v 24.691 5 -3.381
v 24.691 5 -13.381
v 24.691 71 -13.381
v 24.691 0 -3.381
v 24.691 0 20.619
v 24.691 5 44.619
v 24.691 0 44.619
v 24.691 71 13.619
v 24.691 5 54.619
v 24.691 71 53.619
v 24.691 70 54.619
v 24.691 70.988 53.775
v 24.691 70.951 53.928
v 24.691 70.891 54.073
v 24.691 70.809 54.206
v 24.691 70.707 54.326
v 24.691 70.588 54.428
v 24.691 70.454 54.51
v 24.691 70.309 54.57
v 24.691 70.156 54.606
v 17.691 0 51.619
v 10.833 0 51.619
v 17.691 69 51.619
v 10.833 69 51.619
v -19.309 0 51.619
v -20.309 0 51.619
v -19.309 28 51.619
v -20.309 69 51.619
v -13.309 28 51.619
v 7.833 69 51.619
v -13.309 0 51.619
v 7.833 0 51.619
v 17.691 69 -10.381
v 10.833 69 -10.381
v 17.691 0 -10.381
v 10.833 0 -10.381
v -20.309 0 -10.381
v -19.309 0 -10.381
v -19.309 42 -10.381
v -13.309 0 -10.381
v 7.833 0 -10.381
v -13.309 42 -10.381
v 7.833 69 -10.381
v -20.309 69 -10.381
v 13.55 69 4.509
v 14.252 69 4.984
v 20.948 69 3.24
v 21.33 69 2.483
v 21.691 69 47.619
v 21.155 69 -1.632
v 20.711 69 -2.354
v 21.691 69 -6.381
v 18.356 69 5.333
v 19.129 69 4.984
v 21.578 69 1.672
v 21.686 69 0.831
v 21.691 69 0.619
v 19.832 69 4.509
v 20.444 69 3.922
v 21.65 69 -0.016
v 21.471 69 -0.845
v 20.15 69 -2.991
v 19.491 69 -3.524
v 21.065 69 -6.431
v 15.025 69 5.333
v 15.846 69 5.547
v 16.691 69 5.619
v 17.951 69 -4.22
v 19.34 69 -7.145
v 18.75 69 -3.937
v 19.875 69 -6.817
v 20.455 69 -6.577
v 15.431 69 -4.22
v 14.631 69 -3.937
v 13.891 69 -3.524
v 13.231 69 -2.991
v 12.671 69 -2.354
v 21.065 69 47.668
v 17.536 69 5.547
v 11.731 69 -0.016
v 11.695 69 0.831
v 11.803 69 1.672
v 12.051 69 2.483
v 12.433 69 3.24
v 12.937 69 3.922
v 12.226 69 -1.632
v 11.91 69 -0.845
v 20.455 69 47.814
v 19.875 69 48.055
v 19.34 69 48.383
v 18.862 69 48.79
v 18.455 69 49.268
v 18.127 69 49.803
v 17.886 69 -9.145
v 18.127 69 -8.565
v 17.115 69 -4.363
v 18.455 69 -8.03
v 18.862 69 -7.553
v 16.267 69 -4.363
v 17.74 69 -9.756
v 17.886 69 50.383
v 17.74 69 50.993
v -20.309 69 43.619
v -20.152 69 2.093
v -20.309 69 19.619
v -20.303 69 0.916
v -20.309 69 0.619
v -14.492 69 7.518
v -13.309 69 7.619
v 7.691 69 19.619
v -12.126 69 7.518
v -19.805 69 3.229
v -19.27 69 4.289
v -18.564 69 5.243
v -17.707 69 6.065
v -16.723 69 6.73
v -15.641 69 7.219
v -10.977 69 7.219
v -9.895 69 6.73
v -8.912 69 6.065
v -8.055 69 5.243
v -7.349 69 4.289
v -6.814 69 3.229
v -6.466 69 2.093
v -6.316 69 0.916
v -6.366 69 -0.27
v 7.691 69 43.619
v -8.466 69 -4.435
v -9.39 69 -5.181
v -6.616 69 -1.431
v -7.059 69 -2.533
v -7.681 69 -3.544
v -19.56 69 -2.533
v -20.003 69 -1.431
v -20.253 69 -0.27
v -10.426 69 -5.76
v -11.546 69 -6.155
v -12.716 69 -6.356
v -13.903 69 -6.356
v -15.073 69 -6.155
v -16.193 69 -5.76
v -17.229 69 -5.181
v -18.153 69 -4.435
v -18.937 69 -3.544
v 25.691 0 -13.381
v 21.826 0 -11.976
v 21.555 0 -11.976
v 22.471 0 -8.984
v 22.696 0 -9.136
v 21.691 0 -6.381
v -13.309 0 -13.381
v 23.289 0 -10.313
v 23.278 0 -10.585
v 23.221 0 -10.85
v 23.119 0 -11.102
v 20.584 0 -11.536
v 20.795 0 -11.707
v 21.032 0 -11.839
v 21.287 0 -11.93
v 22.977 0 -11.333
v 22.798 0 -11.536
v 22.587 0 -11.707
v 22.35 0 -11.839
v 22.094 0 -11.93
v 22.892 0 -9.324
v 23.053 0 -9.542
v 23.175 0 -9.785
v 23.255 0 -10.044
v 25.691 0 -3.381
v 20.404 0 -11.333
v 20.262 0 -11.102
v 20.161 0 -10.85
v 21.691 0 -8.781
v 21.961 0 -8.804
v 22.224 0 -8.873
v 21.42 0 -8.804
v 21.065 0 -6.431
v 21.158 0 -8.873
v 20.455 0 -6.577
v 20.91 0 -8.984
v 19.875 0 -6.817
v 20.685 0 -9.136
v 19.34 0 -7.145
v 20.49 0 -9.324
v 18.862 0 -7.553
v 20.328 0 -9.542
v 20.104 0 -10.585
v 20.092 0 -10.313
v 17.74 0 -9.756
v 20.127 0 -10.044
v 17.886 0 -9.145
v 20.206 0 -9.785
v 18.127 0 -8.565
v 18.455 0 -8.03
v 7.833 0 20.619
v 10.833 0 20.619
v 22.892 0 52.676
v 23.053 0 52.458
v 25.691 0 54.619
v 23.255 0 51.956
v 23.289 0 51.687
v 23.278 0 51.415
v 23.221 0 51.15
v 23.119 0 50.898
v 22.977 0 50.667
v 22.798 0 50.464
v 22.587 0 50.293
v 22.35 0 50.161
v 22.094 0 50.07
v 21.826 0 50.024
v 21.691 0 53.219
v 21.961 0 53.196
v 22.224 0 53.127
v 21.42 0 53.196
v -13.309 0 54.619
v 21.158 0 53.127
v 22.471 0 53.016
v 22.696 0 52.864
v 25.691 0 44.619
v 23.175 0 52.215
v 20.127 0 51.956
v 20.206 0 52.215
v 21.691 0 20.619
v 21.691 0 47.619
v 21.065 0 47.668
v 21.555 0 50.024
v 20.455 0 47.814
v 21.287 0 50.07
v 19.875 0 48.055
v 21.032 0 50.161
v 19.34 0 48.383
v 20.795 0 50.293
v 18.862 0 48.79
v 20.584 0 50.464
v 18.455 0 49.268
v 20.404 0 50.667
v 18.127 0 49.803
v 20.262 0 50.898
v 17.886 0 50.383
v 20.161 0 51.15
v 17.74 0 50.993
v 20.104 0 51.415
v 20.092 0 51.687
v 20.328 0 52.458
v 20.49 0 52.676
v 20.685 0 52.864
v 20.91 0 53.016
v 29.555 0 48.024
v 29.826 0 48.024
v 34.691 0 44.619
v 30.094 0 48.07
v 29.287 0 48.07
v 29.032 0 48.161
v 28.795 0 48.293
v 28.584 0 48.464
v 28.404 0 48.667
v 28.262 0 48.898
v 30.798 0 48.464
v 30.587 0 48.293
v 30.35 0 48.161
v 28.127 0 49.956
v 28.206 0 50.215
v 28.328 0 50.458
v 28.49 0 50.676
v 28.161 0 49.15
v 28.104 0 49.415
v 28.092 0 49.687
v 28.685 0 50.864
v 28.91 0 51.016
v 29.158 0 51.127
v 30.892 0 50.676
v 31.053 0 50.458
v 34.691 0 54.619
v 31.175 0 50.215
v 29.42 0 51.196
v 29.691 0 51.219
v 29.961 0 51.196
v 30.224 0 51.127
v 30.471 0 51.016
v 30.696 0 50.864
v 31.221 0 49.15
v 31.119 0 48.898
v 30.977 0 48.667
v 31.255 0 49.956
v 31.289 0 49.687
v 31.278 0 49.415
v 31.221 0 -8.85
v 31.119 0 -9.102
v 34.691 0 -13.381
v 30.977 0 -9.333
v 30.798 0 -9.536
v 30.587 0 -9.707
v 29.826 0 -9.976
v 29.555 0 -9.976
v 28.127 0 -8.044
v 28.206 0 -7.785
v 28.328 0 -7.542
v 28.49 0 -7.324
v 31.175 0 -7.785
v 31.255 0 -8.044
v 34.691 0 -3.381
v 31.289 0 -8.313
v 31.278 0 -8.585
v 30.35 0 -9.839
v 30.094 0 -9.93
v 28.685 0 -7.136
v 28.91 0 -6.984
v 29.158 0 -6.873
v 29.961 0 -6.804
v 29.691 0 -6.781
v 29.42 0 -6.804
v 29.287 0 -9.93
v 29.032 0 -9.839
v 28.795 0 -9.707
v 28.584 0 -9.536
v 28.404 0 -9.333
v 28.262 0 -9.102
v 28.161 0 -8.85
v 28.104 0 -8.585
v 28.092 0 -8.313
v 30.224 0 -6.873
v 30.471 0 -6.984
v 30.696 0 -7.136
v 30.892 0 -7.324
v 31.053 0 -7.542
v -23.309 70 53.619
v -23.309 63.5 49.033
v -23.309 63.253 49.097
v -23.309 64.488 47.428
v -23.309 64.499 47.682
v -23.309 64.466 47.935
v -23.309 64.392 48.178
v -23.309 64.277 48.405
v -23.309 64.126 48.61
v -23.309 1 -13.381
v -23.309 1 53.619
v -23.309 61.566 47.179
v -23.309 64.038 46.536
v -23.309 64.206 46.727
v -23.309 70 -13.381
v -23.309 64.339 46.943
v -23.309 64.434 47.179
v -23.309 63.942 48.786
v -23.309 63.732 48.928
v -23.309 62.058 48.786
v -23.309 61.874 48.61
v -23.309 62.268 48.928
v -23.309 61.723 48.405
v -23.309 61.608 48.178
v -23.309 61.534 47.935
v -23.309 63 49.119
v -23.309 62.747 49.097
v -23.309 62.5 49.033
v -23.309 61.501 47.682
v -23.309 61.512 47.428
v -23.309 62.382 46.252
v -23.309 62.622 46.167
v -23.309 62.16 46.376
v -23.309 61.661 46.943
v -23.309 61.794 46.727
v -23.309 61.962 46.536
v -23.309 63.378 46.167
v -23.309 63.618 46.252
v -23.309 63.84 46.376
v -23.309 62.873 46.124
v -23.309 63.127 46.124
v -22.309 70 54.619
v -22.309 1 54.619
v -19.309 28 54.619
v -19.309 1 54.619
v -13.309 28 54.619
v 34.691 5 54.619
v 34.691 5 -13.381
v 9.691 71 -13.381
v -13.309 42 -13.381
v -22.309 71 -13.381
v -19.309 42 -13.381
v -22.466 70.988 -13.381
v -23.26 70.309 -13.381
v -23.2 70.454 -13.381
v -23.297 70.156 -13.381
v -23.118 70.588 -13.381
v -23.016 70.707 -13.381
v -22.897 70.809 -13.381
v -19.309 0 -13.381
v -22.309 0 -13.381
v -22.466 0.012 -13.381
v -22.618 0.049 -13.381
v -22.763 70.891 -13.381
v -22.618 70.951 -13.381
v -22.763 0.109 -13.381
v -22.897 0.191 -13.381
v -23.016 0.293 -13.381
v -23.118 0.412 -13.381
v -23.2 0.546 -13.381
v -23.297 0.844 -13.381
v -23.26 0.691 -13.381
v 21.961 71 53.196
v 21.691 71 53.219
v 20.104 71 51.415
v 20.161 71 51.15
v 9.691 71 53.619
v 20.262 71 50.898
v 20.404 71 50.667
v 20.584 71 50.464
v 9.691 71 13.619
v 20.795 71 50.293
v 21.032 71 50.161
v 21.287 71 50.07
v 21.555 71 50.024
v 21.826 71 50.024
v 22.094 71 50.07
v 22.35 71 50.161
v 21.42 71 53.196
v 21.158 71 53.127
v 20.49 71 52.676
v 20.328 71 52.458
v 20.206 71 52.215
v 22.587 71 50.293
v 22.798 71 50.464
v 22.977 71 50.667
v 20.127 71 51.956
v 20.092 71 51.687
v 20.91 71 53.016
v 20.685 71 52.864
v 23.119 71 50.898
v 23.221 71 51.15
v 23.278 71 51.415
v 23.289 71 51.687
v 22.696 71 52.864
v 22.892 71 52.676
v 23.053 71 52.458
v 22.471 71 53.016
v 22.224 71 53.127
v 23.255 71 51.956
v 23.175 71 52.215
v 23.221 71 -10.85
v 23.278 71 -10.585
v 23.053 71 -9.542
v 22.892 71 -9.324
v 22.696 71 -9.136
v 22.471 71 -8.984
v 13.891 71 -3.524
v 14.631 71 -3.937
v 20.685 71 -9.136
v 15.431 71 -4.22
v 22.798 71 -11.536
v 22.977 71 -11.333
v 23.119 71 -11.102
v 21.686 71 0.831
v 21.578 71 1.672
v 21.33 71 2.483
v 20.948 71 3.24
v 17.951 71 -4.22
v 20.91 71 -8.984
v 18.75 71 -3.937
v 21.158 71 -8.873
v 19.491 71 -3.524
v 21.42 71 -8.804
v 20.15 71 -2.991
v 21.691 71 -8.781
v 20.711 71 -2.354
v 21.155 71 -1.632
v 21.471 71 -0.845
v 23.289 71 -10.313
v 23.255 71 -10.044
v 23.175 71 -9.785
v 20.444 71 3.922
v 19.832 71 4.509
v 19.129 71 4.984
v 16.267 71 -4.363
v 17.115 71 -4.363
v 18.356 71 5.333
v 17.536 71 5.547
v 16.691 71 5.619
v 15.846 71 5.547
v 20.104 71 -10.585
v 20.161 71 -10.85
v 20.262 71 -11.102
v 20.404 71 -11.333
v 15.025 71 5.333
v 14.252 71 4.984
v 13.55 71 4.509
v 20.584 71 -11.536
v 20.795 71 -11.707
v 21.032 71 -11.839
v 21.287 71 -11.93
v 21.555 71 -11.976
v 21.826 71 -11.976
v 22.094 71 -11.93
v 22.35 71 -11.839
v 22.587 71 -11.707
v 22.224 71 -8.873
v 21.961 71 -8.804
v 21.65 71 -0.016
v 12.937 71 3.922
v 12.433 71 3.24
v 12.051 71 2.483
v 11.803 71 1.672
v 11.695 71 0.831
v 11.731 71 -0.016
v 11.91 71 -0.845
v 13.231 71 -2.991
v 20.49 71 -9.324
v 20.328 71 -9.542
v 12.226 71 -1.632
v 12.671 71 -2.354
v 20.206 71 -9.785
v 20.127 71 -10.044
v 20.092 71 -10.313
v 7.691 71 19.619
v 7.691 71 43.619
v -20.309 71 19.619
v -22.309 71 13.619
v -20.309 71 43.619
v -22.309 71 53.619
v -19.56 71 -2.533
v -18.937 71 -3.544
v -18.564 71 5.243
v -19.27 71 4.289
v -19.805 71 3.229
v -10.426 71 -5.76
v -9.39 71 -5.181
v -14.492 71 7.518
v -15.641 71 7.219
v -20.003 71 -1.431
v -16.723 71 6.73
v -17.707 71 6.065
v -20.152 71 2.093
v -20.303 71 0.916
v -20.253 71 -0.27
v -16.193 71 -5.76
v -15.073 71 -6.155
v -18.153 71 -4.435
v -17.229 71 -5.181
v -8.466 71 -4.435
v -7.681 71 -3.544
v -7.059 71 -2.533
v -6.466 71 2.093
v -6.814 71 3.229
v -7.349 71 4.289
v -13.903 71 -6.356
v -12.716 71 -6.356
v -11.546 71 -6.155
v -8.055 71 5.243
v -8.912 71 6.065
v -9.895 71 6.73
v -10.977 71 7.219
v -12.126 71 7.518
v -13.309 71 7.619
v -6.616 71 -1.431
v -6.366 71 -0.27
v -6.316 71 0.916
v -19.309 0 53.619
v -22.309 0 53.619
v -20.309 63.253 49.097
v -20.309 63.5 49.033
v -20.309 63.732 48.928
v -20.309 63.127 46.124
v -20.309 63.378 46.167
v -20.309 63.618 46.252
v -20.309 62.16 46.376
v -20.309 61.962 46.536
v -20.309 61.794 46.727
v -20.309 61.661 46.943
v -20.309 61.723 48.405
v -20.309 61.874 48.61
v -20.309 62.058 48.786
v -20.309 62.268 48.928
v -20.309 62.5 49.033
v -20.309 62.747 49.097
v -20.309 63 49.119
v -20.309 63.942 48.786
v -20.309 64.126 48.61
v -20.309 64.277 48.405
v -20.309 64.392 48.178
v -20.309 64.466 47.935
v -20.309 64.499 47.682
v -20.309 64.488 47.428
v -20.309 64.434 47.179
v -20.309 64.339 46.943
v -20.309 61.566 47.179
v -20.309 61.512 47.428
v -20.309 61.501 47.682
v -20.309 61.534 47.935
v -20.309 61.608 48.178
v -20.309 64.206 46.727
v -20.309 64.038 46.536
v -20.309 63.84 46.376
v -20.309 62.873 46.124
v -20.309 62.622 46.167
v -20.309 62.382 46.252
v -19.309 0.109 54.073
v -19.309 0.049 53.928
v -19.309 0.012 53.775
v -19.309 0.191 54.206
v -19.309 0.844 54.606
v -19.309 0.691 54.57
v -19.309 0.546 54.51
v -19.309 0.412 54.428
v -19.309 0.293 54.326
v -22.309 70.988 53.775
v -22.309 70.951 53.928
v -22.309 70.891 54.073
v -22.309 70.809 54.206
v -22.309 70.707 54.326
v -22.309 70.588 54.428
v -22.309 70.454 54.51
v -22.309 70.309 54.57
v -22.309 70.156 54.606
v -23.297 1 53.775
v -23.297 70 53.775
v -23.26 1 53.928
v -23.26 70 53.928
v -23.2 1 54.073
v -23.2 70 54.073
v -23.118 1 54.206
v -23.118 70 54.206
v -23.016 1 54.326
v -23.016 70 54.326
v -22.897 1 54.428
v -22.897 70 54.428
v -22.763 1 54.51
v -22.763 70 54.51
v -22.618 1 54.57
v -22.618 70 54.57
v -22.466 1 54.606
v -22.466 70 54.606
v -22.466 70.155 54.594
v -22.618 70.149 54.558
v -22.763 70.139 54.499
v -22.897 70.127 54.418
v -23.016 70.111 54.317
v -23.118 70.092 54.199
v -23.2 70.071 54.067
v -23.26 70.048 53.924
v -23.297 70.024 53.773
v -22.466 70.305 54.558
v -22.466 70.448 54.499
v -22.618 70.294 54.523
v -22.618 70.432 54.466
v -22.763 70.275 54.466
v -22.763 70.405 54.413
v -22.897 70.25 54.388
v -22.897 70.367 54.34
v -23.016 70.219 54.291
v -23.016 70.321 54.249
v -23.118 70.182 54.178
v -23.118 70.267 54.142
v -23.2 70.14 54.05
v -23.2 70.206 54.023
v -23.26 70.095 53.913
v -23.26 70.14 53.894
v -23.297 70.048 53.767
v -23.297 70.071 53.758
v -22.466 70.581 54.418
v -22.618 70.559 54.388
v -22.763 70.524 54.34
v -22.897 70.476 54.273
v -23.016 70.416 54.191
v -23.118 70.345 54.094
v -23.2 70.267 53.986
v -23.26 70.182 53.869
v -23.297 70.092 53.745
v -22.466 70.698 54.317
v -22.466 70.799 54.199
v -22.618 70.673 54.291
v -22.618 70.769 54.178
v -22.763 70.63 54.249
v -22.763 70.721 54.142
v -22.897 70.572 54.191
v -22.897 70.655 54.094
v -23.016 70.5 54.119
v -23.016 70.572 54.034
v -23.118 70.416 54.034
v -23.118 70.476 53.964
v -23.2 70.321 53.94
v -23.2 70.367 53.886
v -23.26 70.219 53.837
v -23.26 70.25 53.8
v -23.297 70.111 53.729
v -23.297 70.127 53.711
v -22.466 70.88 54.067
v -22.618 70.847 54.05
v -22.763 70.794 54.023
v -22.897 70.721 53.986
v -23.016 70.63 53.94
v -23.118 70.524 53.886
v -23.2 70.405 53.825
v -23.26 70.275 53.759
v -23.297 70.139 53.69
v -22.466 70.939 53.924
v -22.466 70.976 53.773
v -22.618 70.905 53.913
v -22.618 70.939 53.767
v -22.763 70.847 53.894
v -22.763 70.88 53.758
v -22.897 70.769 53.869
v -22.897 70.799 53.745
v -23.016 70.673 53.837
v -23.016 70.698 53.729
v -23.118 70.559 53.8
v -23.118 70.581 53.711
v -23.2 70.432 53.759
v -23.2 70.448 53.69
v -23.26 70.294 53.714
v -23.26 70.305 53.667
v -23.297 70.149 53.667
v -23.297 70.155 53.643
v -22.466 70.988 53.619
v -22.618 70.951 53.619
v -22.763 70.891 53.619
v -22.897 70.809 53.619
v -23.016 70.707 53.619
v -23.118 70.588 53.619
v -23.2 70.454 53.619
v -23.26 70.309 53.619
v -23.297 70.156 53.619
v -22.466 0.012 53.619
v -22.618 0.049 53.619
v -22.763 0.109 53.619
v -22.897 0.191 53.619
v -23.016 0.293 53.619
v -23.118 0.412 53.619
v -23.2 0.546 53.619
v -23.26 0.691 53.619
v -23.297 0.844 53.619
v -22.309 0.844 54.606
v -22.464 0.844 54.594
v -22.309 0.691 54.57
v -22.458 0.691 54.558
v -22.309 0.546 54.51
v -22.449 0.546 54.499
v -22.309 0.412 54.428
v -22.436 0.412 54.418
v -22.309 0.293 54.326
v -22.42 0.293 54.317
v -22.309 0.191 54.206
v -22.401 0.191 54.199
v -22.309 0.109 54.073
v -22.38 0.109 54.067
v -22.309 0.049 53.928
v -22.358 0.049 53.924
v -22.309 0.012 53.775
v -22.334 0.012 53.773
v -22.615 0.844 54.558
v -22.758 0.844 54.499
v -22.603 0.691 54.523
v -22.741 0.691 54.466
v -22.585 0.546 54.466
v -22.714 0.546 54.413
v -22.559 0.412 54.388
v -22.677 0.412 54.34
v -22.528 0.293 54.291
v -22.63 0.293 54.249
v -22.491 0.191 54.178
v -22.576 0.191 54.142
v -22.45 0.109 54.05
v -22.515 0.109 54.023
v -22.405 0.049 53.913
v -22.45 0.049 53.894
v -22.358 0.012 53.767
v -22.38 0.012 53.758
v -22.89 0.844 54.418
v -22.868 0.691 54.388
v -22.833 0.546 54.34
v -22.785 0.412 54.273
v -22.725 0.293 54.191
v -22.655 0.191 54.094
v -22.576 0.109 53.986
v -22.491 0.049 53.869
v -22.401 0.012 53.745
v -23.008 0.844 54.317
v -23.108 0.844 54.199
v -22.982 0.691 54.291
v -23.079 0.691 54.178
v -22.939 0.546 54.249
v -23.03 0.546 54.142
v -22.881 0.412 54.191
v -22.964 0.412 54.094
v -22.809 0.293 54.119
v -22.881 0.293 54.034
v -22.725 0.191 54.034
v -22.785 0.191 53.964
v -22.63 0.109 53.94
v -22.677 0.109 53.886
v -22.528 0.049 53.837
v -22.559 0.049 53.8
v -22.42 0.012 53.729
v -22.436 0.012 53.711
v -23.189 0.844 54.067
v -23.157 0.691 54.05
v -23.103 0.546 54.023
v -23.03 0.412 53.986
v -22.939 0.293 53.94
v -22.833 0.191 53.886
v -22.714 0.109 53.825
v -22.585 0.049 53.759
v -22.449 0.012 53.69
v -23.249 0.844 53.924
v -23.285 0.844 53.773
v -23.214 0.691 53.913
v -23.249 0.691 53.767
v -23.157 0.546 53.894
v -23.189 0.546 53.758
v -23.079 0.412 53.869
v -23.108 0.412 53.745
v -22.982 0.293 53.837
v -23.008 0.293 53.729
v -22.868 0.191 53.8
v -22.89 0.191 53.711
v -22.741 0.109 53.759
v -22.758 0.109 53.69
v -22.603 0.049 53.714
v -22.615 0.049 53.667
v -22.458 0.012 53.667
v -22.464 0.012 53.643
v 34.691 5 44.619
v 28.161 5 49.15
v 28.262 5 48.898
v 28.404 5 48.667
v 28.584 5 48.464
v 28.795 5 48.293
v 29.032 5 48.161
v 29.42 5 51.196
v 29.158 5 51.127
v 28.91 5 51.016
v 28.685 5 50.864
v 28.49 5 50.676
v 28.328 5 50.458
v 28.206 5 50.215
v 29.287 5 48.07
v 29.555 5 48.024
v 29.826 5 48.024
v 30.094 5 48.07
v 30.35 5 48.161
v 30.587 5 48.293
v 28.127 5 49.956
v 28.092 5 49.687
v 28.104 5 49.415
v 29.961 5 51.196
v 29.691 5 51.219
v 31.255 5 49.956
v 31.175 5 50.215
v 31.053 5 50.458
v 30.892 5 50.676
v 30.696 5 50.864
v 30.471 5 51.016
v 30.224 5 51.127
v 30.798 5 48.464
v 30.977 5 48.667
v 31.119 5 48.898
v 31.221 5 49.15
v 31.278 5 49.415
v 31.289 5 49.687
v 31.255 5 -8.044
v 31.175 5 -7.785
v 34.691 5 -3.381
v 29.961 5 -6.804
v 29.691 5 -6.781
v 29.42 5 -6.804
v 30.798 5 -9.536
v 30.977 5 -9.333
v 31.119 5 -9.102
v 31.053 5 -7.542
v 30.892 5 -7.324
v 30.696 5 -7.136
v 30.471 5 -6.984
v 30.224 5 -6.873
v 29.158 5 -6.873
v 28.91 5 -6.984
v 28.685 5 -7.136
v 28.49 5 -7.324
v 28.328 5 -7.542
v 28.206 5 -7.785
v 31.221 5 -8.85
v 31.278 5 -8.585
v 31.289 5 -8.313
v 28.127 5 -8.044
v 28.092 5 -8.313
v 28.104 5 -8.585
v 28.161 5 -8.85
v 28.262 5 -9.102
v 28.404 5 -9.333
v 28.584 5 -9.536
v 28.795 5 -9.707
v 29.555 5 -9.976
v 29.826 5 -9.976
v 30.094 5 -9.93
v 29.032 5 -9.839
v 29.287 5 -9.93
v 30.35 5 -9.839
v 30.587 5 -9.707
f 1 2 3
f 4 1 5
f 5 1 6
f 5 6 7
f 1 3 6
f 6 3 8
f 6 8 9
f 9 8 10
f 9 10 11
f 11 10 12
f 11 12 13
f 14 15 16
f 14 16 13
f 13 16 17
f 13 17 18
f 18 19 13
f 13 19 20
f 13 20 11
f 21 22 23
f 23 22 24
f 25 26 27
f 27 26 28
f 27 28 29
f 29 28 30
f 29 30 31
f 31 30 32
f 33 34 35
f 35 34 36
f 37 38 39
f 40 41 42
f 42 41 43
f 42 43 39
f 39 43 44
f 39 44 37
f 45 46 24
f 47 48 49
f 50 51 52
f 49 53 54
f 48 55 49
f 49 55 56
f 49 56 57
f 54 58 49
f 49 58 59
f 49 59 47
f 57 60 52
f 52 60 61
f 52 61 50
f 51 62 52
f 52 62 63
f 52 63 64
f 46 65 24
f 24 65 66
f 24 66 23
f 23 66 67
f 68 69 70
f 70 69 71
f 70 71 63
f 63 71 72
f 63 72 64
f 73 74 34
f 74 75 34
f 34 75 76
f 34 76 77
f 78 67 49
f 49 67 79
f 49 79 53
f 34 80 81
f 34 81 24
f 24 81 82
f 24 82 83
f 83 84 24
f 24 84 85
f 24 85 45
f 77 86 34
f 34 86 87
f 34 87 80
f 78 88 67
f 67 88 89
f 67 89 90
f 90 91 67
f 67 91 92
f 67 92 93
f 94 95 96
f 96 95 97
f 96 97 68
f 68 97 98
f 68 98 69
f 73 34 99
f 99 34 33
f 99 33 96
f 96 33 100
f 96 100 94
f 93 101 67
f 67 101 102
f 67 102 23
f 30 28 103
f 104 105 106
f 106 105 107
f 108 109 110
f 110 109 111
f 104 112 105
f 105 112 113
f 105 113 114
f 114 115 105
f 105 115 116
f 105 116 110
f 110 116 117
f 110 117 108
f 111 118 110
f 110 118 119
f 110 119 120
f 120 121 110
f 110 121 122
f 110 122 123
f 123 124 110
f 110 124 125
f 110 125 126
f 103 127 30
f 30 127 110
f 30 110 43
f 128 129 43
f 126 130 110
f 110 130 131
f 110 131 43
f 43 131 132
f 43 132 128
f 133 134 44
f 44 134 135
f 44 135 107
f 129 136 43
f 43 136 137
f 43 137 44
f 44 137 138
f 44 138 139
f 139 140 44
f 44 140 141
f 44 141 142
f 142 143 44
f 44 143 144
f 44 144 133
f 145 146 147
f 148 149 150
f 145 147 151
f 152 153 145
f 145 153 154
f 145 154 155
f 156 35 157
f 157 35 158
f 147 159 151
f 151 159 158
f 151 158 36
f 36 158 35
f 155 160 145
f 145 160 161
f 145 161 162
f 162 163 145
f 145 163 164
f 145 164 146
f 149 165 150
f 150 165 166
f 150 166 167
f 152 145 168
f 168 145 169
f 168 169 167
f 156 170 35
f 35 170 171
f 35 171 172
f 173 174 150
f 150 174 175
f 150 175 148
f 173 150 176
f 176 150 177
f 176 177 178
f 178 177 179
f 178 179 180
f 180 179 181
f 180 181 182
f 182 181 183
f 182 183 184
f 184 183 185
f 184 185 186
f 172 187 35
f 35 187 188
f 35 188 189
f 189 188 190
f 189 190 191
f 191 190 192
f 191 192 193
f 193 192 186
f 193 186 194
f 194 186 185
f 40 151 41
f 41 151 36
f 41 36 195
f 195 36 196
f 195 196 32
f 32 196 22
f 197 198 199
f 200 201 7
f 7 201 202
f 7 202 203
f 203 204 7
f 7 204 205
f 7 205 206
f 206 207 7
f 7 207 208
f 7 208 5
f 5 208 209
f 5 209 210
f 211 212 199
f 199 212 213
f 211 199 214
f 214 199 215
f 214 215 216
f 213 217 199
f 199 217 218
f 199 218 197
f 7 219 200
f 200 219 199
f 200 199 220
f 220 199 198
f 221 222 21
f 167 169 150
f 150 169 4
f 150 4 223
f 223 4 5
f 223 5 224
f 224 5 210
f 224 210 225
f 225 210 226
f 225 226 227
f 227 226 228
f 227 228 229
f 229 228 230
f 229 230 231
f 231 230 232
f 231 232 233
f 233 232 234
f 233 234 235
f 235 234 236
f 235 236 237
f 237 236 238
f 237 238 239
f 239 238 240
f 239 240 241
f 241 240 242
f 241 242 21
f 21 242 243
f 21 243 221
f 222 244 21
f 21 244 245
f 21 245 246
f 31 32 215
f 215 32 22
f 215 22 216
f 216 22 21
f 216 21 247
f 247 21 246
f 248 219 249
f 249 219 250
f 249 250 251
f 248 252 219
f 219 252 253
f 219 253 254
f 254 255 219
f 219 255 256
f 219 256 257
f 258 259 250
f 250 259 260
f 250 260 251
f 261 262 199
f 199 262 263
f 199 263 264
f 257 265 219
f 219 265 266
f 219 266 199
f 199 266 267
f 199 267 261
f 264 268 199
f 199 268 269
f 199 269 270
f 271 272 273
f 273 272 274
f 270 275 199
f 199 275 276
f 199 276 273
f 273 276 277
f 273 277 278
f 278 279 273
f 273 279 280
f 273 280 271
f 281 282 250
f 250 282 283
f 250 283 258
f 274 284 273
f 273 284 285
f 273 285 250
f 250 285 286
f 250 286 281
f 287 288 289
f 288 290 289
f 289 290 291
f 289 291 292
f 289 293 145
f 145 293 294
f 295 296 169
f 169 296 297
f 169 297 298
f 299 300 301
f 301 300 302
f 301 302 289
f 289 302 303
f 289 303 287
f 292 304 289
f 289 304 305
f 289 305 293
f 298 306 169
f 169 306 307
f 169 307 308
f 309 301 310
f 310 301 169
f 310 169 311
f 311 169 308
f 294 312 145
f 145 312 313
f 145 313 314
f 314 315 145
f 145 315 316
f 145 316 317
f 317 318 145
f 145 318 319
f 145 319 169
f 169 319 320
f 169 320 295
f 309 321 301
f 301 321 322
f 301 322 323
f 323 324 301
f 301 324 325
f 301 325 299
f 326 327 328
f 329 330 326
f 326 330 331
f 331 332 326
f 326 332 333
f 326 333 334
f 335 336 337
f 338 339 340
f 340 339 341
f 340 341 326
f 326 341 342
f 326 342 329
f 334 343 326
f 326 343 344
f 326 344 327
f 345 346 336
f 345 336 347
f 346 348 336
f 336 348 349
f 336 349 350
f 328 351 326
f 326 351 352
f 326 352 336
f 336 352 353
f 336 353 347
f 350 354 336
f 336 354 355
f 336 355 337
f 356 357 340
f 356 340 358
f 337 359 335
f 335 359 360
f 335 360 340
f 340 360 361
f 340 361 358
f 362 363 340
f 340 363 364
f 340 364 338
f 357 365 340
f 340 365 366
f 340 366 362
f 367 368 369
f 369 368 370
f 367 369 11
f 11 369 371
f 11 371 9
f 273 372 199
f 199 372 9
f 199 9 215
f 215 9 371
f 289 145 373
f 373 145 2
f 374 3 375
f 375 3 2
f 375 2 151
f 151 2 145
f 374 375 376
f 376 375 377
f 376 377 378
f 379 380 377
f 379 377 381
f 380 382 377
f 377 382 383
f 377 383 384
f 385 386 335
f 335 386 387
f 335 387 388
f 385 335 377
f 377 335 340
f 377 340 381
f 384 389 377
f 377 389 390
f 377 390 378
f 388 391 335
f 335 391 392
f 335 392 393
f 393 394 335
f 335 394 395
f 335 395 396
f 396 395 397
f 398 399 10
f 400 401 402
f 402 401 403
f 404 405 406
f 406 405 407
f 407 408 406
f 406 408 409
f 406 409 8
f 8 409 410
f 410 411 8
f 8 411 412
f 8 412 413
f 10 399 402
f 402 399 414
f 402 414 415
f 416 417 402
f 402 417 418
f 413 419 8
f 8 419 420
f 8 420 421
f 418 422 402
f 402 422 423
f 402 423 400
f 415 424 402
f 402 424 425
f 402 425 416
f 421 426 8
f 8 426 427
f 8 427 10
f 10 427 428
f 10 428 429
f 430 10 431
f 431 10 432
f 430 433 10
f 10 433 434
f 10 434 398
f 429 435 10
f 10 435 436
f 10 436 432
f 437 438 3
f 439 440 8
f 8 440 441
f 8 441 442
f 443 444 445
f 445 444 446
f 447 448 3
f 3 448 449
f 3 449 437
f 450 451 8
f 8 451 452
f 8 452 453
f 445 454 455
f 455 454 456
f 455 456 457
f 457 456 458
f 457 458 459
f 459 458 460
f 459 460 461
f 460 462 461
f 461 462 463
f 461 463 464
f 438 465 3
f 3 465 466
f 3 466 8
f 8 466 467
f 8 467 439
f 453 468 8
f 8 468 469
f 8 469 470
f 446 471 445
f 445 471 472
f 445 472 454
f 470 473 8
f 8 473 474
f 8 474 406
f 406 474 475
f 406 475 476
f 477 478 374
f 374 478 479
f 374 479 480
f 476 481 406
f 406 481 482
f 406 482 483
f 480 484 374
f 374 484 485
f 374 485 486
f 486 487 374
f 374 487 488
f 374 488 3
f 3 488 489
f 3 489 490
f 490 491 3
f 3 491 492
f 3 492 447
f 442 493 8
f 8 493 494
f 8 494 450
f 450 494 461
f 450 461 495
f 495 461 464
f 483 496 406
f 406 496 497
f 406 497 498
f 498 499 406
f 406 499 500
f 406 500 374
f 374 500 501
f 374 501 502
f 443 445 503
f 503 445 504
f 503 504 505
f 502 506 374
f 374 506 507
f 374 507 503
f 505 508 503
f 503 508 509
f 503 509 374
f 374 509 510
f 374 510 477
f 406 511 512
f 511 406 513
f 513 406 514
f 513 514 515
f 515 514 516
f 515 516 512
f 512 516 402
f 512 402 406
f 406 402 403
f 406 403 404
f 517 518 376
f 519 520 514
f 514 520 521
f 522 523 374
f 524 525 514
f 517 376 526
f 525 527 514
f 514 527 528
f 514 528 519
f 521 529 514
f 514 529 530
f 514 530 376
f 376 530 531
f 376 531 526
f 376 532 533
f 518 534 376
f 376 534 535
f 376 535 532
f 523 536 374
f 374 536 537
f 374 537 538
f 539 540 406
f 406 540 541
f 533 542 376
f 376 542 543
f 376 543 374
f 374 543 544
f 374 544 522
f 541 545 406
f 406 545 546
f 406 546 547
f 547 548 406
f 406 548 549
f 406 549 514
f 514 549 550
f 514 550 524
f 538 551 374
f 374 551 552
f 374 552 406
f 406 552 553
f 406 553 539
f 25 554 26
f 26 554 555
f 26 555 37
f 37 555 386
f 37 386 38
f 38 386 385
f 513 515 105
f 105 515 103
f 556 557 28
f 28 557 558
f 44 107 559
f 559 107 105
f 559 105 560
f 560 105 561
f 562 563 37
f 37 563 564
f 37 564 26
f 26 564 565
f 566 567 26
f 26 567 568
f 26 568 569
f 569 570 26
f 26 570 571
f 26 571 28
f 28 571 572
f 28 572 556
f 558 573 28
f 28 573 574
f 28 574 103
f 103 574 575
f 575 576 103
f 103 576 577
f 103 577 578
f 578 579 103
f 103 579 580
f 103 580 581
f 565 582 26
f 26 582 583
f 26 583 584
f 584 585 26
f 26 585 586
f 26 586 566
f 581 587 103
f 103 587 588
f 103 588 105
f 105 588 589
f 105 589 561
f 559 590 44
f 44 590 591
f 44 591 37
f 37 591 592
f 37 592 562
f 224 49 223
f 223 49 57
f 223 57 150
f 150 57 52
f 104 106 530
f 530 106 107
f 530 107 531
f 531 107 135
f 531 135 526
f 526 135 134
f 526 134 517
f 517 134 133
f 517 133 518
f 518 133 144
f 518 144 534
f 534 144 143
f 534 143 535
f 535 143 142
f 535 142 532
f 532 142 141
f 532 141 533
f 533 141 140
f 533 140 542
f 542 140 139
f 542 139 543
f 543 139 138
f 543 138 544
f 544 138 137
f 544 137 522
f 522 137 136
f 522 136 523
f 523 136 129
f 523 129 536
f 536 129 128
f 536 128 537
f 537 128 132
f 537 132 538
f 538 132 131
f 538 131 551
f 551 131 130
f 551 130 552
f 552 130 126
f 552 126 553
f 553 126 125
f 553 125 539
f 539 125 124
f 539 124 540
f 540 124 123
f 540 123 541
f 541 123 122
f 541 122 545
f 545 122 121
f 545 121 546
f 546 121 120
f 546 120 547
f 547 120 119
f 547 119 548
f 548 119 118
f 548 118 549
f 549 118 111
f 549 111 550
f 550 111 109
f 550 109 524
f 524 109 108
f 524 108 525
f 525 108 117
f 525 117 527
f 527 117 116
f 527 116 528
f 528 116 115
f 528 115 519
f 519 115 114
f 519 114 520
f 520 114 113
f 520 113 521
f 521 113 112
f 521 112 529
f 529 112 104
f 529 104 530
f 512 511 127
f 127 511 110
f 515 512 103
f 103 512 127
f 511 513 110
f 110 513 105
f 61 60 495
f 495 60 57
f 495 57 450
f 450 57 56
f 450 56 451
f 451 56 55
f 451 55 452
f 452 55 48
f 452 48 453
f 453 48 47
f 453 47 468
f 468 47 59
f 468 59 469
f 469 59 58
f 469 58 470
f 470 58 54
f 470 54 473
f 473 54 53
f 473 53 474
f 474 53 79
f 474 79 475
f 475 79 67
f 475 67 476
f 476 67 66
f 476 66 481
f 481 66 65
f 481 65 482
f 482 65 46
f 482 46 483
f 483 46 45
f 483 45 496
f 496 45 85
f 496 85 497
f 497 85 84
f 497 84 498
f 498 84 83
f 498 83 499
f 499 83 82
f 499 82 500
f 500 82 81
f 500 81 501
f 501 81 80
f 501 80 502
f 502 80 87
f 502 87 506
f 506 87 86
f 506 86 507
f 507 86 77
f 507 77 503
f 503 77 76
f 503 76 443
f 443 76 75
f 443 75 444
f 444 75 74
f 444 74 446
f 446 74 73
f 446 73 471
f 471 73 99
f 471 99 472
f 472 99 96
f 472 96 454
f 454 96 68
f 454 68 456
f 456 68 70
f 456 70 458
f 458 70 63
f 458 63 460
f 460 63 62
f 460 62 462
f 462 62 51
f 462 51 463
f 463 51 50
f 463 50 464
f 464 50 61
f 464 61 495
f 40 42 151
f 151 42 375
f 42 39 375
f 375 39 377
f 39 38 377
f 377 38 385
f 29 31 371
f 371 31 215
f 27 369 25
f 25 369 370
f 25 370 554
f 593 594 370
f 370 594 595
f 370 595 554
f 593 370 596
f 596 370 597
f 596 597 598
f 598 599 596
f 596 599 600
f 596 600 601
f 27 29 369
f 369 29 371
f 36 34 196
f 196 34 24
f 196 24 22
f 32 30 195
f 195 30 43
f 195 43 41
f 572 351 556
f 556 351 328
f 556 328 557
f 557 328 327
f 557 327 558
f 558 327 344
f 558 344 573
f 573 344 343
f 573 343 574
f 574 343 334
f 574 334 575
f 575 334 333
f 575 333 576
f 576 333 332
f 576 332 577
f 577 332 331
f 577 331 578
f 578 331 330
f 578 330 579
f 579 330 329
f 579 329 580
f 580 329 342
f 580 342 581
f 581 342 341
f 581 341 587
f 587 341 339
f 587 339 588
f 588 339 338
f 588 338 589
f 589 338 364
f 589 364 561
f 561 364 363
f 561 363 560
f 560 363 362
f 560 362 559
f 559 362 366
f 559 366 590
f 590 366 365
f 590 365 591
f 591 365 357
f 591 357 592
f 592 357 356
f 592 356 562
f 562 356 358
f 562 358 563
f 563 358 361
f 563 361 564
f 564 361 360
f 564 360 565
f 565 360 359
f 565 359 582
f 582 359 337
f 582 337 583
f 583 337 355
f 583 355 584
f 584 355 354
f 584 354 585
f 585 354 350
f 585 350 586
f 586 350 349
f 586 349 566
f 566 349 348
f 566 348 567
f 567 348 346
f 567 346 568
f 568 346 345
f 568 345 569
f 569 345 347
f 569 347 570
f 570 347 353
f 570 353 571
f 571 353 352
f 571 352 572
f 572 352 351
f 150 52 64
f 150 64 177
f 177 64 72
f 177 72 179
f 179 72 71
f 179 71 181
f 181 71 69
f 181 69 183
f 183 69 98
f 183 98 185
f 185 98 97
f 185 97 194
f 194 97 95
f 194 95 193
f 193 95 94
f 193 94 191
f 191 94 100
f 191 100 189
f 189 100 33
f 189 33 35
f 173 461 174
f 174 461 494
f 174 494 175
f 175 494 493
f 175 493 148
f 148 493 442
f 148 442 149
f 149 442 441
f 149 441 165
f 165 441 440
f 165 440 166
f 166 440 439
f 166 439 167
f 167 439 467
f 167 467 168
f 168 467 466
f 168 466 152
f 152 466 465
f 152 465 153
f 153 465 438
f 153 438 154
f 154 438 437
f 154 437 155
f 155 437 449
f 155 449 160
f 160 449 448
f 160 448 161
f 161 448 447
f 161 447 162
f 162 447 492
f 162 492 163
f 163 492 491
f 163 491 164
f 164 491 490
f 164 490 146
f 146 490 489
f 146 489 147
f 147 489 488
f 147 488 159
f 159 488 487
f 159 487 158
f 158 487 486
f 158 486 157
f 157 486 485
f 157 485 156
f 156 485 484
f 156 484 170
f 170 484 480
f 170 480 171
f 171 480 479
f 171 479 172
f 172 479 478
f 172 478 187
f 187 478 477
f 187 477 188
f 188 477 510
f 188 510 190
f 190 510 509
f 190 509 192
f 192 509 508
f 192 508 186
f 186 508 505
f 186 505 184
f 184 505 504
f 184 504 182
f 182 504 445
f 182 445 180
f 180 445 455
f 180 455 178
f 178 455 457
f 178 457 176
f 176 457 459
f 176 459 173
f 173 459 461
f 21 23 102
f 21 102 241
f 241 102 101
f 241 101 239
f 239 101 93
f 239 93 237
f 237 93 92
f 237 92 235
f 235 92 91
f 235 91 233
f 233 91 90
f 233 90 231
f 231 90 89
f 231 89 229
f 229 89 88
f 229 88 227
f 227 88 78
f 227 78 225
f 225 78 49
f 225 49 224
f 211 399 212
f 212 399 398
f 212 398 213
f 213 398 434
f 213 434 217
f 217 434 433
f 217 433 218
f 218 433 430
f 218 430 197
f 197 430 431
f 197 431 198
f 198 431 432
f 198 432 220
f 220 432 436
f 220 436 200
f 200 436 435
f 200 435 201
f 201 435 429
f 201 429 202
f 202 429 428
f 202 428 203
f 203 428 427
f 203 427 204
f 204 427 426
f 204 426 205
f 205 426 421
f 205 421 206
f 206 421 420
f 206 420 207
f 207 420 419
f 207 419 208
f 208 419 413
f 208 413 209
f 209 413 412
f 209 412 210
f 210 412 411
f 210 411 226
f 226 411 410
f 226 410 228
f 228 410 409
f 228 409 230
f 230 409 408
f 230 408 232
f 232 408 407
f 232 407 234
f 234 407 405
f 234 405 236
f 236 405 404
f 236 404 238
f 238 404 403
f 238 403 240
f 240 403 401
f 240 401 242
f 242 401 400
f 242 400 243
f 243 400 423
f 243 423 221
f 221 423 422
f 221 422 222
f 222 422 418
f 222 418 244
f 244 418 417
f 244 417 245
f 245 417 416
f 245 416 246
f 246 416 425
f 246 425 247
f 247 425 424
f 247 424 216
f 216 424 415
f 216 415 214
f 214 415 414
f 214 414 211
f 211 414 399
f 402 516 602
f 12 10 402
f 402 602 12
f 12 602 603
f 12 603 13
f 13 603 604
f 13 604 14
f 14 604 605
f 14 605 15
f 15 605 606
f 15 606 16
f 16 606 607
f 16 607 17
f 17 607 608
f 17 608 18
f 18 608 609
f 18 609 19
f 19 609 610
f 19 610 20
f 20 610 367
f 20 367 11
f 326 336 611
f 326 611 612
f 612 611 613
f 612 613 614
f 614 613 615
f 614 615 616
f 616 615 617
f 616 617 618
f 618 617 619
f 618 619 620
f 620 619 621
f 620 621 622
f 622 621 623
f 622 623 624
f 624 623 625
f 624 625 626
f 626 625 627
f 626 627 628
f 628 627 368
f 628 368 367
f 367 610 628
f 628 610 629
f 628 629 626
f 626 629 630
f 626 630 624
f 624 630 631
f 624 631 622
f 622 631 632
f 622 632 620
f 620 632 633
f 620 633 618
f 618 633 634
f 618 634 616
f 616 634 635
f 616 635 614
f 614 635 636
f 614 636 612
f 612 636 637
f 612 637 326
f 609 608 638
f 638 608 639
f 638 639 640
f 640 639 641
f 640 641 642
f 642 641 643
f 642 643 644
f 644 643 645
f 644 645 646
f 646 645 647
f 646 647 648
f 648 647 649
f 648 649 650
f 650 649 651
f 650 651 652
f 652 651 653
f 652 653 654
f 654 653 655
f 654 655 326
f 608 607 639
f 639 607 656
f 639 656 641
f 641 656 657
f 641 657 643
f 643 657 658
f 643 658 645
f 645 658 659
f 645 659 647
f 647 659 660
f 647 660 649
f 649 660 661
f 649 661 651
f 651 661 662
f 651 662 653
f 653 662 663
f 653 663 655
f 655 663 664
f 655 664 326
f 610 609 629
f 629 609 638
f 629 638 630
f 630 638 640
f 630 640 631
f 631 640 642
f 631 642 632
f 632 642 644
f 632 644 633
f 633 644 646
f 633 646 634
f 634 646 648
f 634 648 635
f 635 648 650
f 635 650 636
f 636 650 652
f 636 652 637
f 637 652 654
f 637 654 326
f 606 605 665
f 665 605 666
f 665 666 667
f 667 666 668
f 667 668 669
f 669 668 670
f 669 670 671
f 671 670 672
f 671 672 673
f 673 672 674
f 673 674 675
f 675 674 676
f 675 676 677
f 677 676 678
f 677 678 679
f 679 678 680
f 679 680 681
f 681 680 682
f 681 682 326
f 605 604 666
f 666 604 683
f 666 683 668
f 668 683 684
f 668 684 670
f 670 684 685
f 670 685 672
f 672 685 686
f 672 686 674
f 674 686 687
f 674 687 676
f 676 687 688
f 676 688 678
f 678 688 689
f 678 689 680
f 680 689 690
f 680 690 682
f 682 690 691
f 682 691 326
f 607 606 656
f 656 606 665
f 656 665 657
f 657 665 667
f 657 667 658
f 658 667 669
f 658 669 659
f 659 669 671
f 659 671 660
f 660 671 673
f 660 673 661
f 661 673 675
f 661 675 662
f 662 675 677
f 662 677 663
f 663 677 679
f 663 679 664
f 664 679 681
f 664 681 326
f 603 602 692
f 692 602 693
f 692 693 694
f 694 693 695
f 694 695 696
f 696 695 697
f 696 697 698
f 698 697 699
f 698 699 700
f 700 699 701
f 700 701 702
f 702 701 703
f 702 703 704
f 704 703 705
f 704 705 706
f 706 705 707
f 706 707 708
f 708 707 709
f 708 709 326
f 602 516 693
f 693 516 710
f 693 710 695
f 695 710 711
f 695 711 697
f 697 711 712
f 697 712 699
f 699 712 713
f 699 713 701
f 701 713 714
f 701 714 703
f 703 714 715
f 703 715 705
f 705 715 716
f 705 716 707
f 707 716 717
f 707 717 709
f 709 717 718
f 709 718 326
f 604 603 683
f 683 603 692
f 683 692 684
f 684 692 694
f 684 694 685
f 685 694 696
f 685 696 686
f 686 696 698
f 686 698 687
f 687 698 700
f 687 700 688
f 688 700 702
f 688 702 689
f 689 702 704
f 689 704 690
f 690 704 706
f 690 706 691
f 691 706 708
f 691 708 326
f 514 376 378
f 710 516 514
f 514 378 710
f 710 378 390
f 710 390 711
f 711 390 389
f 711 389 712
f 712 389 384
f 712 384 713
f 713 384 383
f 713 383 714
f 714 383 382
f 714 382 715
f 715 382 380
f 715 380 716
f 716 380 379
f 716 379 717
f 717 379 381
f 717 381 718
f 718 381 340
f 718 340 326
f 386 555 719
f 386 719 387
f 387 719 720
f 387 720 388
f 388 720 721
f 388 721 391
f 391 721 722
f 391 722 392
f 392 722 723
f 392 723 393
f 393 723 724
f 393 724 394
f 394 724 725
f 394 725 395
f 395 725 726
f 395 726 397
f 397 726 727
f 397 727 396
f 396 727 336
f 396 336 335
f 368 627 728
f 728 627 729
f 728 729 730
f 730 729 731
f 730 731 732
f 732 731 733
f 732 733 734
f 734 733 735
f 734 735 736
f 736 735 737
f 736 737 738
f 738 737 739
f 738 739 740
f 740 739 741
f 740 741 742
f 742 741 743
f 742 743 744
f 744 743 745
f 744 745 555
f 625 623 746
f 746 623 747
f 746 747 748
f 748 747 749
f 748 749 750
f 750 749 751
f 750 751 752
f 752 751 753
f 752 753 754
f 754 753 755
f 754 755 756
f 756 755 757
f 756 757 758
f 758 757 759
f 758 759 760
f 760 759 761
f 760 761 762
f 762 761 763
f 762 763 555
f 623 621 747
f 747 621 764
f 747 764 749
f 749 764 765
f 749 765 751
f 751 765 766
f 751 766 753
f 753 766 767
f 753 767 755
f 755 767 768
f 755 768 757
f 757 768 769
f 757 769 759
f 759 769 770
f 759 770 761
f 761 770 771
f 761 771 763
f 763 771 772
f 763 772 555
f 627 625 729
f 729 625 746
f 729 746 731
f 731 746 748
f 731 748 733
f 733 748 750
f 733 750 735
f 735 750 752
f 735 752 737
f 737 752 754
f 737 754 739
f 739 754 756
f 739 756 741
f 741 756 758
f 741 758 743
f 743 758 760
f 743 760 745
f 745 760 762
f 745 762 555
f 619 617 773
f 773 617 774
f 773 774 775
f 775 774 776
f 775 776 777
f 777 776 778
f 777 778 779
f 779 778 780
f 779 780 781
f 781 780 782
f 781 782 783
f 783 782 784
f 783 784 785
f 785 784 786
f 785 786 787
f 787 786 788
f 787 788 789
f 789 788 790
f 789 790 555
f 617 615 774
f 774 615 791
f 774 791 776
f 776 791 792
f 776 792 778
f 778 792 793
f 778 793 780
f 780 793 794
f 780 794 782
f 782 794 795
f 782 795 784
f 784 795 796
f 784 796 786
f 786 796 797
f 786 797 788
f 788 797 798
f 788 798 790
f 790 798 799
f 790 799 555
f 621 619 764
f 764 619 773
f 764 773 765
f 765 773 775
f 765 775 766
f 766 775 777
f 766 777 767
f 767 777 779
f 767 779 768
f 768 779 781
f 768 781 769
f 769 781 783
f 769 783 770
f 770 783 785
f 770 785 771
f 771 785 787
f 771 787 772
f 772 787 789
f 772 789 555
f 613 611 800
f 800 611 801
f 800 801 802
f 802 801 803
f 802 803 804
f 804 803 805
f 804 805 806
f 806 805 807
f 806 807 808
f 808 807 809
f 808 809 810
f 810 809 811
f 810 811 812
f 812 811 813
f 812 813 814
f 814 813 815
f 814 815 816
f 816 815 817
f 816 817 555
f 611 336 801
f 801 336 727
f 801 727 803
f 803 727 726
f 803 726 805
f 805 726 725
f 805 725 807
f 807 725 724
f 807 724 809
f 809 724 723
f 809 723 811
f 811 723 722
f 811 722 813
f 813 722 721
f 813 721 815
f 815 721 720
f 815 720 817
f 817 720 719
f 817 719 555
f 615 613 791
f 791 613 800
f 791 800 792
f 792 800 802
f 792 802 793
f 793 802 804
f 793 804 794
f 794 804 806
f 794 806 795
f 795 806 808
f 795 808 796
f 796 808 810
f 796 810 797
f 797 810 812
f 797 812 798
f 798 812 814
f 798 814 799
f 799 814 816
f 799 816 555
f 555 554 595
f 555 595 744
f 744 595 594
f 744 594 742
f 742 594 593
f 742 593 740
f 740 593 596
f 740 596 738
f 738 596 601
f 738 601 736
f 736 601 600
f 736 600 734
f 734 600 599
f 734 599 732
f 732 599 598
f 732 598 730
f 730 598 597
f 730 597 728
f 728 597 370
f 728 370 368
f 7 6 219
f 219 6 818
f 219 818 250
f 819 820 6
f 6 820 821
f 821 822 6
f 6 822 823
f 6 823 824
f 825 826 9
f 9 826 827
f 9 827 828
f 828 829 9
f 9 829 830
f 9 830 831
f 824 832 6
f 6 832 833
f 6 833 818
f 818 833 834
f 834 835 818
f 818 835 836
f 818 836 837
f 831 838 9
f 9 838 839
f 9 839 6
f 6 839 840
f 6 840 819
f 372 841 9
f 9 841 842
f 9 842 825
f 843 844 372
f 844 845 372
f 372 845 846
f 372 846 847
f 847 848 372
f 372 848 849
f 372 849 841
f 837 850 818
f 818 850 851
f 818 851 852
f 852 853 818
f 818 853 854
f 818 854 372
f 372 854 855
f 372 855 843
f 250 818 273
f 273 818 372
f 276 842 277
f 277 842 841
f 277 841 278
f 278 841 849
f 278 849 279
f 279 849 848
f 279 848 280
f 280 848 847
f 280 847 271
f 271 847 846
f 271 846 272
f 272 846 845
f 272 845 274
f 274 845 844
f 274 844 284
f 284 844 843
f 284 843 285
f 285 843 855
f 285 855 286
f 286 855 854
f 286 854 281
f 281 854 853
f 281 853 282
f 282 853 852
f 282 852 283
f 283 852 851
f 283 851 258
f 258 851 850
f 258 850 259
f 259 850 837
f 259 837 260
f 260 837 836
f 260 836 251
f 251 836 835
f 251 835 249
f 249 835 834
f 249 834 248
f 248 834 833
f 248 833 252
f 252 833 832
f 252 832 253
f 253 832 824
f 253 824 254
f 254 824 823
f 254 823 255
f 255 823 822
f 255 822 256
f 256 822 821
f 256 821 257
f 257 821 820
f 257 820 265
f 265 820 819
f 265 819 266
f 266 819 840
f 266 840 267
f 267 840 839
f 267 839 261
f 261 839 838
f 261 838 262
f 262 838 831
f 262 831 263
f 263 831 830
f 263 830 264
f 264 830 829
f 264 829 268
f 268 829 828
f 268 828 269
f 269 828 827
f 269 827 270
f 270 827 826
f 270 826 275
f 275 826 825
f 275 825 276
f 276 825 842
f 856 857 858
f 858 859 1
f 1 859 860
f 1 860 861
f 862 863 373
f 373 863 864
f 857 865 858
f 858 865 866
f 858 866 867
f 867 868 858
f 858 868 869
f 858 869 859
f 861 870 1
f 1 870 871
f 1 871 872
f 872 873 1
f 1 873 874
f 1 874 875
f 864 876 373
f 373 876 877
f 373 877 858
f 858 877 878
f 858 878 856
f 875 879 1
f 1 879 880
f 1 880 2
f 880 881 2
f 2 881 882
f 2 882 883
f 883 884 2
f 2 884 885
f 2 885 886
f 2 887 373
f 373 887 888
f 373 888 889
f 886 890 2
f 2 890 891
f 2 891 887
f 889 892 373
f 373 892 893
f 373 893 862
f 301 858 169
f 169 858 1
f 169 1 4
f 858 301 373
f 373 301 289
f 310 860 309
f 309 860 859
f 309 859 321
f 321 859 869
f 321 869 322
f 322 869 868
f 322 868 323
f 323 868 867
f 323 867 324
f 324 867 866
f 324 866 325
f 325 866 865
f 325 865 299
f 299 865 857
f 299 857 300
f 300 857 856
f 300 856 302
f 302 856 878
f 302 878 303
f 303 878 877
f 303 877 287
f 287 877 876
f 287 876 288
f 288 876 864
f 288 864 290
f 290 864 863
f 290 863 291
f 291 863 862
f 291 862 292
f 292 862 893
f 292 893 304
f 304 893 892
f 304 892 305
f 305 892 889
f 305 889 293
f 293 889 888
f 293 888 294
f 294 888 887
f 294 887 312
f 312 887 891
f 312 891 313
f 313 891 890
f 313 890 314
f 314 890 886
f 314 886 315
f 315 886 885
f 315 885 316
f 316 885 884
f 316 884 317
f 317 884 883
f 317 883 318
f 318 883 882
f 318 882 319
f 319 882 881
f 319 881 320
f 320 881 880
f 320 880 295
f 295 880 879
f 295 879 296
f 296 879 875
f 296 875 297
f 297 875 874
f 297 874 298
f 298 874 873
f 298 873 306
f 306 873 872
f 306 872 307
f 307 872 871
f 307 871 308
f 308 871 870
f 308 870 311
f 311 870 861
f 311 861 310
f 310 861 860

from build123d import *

# Parameters (mm, degrees)
SKETCH1_W           = 48
SKETCH1_H           = 68
BOSS_EXTRUDE1_DEPTH = 71
SKETCH2_W           = 42
SKETCH2_H           = 62
CUT_EXTRUDE1_DEPTH  = 69
SKETCH3_R           = 7
SKETCH3_R_2         = 5
SKETCH3_W           = 28
SKETCH3_H           = 24
CUT_EXTRUDE2_DEPTH  = 3
SKETCH4_W           = 6
SKETCH4_H           = 42
CUT_EXTRUDE3_DEPTH  = 3
SKETCH5_W           = 6
SKETCH5_H           = 28
CUT_EXTRUDE4_DEPTH  = 3
SKETCH6_W           = 3
SKETCH6_H           = 62
BOSS_EXTRUDE2_DEPTH = 69
SKETCH7_R           = 1.5
CUT_EXTRUDE5_DEPTH  = 3
SKETCH11_R          = 1.6
BOSS_EXTRUDE3_DEPTH = 71
SKETCH12_R          = 1.6
CUT_EXTRUDE6_DEPTH  = 71
BOSS_EXTRUDE4_DEPTH = 71
SKETCH14_R          = 1.6
CUT_EXTRUDE7_DEPTH  = 71
FILLET2_R           = 1
FILLET3_R           = 1
FILLET5_R           = 1
SKETCH17_W          = 10
SKETCH17_H          = 5
BOSS_EXTRUDE5_DEPTH = 10
SKETCH18_R          = 1.6
CUT_EXTRUDE8_DEPTH  = 5
SKETCH19_W          = 10
SKETCH19_H          = 5
BOSS_EXTRUDE6_DEPTH = 10
SKETCH20_R          = 1.6
CUT_EXTRUDE10_DEPTH = 5


with BuildPart() as part:
    # Sketch1 → Boss-Extrude1 (new body)
    with BuildSketch(Plane(origin=(0, 0, 0), x_dir=(1, 0, 0), z_dir=(0, 1, 0))):
        with Locations((0.690647482, -20.618705036)):
            Rectangle(SKETCH1_W, SKETCH1_H)
    extrude(amount=BOSS_EXTRUDE1_DEPTH)

    # Sketch2 → Cut-Extrude1 (cut)
    with BuildSketch(Plane.XZ):
        with Locations((0.690647482, 20.618705036)):
            Rectangle(SKETCH2_W, SKETCH2_H)
    extrude(amount=-CUT_EXTRUDE1_DEPTH, mode=Mode.SUBTRACT)

    # Sketch3 → Cut-Extrude2 (cut)
    with BuildSketch(Plane(origin=(0, 71, 0), x_dir=(1, 0, 0), z_dir=(0, 1, 0))):
        with Locations((-13.309352518, -0.618705036)):
            Circle(SKETCH3_R)
        with Locations((16.690647482, -0.618705036)):
            Circle(SKETCH3_R_2)
        with Locations((-6.309352518, -31.618705036)):
            Rectangle(SKETCH3_W, SKETCH3_H)
    extrude(amount=-CUT_EXTRUDE2_DEPTH, mode=Mode.SUBTRACT)

    # Sketch4 → Cut-Extrude3 (cut)
    with BuildSketch(Plane(origin=(0, 0, -13.381294964), x_dir=(-1, 0, 0), z_dir=(0, 0, -1))):
        with Locations((16.309352518, 21)):
            Rectangle(SKETCH4_W, SKETCH4_H)
    extrude(amount=-CUT_EXTRUDE3_DEPTH, mode=Mode.SUBTRACT)

    # Sketch5 → Cut-Extrude4 (cut)
    with BuildSketch(Plane.XY.offset(54.618705036)):
        with Locations((-16.309352518, 14)):
            Rectangle(SKETCH5_W, SKETCH5_H)
    extrude(amount=-CUT_EXTRUDE4_DEPTH, mode=Mode.SUBTRACT)

    # Sketch6 → Boss-Extrude2 (add)
    with BuildSketch(Plane.XZ.offset(-69)):
        with Locations((9.33286699, 20.618705036)):
            Rectangle(SKETCH6_W, SKETCH6_H)
    extrude(amount=BOSS_EXTRUDE2_DEPTH)

    # Sketch7 → Cut-Extrude5 (cut)
    with BuildSketch(Plane.ZY.offset(23.309352518)):
        with Locations((47.618705036, 63)):
            Circle(SKETCH7_R)
    extrude(amount=-CUT_EXTRUDE5_DEPTH, mode=Mode.SUBTRACT)

    # Sketch11 → Boss-Extrude3 (add)
    with BuildSketch(Plane(origin=(0, 71, 0), x_dir=(1, 0, 0), z_dir=(0, 1, 0))):
        with BuildLine():
            Line((19.044896171, 13.381294964), (24.690647482, 13.381294964))
            Line((24.690647482, 13.381294964), (24.690647482, 7.735543653))
            ThreePointArc((24.690647482, 7.735543653), (18.862220357, 7.552867839), (19.044896171, 13.381294964))
        make_face()
        with Locations((21.690647482, 10.381294964)):
            Circle(SKETCH11_R, mode=Mode.SUBTRACT)
    extrude(amount=-BOSS_EXTRUDE3_DEPTH)

    # Sketch12 → Cut-Extrude6 (cut)
    with BuildSketch(Plane(origin=(0, 71, 0), x_dir=(1, 0, 0), z_dir=(0, 1, 0))):
        with Locations((21.690647482, 10.381294964)):
            Circle(SKETCH12_R)
    extrude(amount=-CUT_EXTRUDE6_DEPTH, mode=Mode.SUBTRACT)

    # Sketch13 → Boss-Extrude4 (add)
    with BuildSketch(Plane(origin=(0, 71, 0), x_dir=(1, 0, 0), z_dir=(0, 1, 0))):
        with BuildLine():
            Line((19.044896171, -54.618705036), (24.690647482, -54.618705036))
            Line((24.690647482, -54.618705036), (24.690647482, -48.972953725))
            ThreePointArc((24.690647482, -48.972953725), (18.862220357, -48.790277911), (19.044896171, -54.618705036))
        make_face()
    extrude(amount=-BOSS_EXTRUDE4_DEPTH)

    # Sketch14 → Cut-Extrude7 (cut)
    with BuildSketch(Plane(origin=(0, 71, 0), x_dir=(1, 0, 0), z_dir=(0, 1, 0))):
        with Locations((21.690647482, -51.618705036)):
            Circle(SKETCH14_R)
    extrude(amount=-CUT_EXTRUDE7_DEPTH, mode=Mode.SUBTRACT)

    # Fillet2
    fillet2_edges = [part.edges().sort_by_distance(p)[0] for p in [
        (0.690647482, 71, 54.618705036),
    ]]
    fillet(fillet2_edges, radius=FILLET2_R)

    # Fillet3
    fillet3_edges = [part.edges().sort_by_distance(p)[0] for p in [
        (-23.309352518, 35, 54.618705036),
        (-23.309352518, 70.707106781, 54.325811817),
        (-23.309352518, 71, 20.118705036),
    ]]
    fillet(fillet3_edges, radius=FILLET3_R)

    # Fillet5
    fillet5_edges = [part.edges().sort_by_distance(p)[0] for p in [
        (-20.809352518, 0, 54.618705036),
        (-23.016459299, 0, 54.325811817),
        (-23.309352518, 0, 20.118705036),
    ]]
    fillet(fillet5_edges, radius=FILLET5_R)

    # Sketch17 → Boss-Extrude5 (add)
    with BuildSketch(Plane(origin=(24.690647482, 0, 0), x_dir=(0, 0, -1), z_dir=(1, 0, 0))):
        with Locations((-49.618705036, 2.5)):
            Rectangle(SKETCH17_W, SKETCH17_H)
    extrude(amount=BOSS_EXTRUDE5_DEPTH)

    # Sketch18 → Cut-Extrude8 (cut)
    with BuildSketch(Plane(origin=(0, 5, 0), x_dir=(1, 0, 0), z_dir=(0, 1, 0))):
        with Locations((29.690647482, -49.618705036)):
            Circle(SKETCH18_R)
    extrude(amount=-CUT_EXTRUDE8_DEPTH, mode=Mode.SUBTRACT)

    # Sketch19 → Boss-Extrude6 (add)
    with BuildSketch(Plane(origin=(24.690647482, 0, 0), x_dir=(0, 0, -1), z_dir=(1, 0, 0))):
        with Locations((8.381294964, 2.5)):
            Rectangle(SKETCH19_W, SKETCH19_H)
    extrude(amount=BOSS_EXTRUDE6_DEPTH)

    # Sketch20 → Cut-Extrude10 (cut)
    with BuildSketch(Plane(origin=(0, 5, 0), x_dir=(1, 0, 0), z_dir=(0, 1, 0))):
        with Locations((29.690647482, 8.381294964)):
            Circle(SKETCH20_R)
    extrude(amount=-CUT_EXTRUDE10_DEPTH, mode=Mode.SUBTRACT)


solid = part.part
